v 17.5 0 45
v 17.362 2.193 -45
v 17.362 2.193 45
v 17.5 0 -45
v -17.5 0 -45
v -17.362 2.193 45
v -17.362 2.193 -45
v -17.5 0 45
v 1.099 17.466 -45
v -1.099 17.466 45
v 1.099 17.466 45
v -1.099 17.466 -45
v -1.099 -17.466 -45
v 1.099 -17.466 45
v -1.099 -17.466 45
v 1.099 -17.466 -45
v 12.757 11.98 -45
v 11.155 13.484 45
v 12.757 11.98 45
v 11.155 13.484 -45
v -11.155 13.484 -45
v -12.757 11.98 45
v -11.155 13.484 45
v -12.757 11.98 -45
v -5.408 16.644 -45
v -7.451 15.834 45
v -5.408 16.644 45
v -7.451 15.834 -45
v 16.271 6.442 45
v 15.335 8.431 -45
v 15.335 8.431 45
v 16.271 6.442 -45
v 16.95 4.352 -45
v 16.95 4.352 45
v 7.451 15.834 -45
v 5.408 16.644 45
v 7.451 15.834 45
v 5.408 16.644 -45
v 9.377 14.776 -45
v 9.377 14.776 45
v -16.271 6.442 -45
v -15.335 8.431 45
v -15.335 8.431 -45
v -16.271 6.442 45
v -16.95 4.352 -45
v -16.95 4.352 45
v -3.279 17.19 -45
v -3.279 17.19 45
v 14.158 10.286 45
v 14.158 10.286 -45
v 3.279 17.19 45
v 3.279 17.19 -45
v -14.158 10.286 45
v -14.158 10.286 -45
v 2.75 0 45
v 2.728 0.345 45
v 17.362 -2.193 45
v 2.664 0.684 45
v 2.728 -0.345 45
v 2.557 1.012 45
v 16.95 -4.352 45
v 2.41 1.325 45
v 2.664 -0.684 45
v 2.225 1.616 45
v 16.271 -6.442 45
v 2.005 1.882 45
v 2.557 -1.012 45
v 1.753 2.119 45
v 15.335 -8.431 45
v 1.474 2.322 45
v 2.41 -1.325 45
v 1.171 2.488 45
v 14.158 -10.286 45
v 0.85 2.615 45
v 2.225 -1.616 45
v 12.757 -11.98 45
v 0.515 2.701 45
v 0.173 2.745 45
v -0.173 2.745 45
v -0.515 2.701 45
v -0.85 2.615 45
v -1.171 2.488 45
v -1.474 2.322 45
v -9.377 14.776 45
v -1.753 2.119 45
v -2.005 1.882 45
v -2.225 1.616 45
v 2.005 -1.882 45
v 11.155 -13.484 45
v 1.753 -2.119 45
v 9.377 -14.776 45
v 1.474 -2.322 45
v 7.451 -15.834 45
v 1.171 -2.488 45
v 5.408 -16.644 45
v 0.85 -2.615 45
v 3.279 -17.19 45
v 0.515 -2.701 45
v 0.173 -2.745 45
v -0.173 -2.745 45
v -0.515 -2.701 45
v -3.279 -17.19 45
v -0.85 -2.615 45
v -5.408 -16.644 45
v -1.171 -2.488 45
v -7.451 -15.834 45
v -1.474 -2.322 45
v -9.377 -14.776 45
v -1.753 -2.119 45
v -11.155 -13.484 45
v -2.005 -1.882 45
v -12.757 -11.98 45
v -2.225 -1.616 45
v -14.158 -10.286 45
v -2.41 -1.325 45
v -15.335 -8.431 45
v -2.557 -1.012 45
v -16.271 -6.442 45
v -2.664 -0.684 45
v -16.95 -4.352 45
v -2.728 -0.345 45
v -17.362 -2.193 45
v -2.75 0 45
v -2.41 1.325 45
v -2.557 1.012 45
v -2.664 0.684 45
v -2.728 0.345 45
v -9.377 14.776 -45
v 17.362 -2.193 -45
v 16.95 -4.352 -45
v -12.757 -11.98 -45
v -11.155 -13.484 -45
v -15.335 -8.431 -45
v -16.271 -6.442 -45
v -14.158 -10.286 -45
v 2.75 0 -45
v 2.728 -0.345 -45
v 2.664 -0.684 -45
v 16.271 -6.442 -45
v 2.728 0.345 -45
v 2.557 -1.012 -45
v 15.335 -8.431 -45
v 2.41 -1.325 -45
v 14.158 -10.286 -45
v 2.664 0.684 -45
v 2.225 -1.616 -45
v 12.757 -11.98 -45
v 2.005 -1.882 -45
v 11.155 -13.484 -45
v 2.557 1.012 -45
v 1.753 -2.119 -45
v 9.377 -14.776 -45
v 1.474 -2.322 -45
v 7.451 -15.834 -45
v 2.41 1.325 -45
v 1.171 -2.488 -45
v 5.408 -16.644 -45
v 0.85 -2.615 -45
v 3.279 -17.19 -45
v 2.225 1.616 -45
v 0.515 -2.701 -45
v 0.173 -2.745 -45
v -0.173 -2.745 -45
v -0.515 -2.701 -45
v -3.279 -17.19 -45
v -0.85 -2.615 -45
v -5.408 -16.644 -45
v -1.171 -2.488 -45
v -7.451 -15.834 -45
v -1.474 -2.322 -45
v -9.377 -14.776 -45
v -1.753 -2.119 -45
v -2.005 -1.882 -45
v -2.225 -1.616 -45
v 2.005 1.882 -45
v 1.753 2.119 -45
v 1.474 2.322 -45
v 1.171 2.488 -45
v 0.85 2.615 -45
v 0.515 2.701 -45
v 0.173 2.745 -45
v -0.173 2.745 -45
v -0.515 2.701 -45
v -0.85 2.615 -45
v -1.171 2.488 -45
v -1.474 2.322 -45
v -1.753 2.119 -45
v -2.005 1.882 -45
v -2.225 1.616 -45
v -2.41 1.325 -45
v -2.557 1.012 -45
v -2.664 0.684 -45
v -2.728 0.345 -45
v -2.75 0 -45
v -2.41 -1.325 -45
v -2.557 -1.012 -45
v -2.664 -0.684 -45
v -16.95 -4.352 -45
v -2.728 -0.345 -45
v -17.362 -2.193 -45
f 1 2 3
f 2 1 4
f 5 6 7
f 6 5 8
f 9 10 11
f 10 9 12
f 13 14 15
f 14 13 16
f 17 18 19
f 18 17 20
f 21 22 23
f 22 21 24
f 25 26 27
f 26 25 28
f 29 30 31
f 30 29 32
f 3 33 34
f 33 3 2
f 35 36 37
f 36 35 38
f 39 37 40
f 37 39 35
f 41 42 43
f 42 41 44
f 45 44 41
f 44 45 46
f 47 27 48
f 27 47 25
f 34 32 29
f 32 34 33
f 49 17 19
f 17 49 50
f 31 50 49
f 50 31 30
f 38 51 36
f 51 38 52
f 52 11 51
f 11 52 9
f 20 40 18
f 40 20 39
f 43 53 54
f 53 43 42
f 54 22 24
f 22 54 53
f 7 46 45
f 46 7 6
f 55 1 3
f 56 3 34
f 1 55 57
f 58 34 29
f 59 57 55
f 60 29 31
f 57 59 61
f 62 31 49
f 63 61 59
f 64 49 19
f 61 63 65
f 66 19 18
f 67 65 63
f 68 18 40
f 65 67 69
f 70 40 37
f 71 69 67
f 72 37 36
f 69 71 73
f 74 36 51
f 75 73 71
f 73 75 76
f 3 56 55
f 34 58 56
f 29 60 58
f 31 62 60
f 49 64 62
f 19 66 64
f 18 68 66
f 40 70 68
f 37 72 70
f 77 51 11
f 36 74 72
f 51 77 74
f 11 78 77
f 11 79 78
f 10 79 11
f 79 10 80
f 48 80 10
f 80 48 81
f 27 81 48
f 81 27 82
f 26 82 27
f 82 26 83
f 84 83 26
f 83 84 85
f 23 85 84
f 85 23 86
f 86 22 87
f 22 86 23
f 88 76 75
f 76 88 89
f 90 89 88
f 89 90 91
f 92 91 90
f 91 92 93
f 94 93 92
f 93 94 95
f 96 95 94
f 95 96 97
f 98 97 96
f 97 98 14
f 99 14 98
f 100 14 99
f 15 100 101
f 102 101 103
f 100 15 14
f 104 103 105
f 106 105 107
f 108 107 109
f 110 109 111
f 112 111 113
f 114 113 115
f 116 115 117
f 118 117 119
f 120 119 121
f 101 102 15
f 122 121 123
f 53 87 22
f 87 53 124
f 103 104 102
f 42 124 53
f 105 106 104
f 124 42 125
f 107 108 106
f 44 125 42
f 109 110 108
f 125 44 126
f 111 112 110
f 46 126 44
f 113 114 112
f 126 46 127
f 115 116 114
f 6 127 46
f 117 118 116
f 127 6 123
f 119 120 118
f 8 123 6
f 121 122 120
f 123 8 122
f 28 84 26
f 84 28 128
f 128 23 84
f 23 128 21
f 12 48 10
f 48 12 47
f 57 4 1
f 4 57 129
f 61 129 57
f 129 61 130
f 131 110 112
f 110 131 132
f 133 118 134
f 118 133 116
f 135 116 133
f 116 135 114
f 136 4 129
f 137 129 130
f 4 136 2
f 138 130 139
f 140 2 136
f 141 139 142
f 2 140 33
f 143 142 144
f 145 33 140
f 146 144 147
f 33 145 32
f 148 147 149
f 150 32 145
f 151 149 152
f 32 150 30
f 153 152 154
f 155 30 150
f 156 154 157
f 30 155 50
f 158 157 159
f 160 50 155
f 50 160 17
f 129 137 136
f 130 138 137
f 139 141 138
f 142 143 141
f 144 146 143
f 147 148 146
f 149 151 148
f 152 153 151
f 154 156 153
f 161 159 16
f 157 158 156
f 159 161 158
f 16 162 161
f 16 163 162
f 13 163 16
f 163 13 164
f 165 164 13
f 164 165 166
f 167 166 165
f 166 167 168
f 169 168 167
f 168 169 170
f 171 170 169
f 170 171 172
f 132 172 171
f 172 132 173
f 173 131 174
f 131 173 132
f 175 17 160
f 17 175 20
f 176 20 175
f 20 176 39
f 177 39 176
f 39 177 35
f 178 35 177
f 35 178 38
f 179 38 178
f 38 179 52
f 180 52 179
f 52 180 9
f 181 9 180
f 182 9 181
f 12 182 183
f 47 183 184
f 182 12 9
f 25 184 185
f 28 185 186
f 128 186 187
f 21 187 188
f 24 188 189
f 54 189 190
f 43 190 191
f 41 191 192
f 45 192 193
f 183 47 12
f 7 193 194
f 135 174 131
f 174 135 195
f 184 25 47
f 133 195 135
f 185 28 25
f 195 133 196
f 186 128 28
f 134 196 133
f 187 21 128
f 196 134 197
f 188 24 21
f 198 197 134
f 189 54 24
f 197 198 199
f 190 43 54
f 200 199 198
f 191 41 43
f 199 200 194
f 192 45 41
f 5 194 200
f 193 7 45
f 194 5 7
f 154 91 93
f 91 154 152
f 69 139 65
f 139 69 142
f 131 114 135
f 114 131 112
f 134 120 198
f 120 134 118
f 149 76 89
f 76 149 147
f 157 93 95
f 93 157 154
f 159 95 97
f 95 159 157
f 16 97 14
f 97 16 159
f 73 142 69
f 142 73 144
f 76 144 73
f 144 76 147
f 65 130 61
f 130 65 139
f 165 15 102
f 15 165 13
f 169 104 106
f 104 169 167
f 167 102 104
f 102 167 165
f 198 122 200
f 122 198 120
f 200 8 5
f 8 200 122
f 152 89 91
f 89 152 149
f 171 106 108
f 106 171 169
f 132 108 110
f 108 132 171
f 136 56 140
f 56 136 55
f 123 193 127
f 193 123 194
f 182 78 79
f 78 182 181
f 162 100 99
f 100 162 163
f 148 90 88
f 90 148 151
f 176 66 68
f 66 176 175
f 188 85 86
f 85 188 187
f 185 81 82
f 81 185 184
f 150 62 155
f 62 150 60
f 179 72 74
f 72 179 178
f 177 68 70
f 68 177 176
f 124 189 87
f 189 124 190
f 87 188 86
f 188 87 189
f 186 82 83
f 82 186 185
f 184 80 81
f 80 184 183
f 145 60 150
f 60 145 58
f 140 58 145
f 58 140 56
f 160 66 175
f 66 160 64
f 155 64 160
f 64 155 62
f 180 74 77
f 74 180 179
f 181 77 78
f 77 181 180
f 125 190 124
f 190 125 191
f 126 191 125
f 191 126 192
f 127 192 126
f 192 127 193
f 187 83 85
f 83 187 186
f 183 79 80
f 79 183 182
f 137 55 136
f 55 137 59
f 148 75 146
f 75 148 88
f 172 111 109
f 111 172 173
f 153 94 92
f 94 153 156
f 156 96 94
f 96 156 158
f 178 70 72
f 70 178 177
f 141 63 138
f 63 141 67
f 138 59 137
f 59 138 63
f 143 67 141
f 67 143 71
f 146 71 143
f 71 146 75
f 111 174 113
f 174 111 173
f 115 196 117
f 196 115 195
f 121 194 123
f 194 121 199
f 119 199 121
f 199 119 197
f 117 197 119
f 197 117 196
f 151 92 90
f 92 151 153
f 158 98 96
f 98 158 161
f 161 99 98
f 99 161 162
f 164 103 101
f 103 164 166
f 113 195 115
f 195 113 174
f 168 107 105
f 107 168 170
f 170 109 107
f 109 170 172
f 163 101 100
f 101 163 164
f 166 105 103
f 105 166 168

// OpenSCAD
$fn = 50;


difference() {
	union() {
		translate(v = [0, 0, -45.0000000000]) {
			cylinder(h = 90, r = 17.5000000000);
		}
	}
	union() {
		translate(v = [0, 0, -100.0000000000]) {
			cylinder(h = 200, r = 2.7500000000);
		}
	}
}
